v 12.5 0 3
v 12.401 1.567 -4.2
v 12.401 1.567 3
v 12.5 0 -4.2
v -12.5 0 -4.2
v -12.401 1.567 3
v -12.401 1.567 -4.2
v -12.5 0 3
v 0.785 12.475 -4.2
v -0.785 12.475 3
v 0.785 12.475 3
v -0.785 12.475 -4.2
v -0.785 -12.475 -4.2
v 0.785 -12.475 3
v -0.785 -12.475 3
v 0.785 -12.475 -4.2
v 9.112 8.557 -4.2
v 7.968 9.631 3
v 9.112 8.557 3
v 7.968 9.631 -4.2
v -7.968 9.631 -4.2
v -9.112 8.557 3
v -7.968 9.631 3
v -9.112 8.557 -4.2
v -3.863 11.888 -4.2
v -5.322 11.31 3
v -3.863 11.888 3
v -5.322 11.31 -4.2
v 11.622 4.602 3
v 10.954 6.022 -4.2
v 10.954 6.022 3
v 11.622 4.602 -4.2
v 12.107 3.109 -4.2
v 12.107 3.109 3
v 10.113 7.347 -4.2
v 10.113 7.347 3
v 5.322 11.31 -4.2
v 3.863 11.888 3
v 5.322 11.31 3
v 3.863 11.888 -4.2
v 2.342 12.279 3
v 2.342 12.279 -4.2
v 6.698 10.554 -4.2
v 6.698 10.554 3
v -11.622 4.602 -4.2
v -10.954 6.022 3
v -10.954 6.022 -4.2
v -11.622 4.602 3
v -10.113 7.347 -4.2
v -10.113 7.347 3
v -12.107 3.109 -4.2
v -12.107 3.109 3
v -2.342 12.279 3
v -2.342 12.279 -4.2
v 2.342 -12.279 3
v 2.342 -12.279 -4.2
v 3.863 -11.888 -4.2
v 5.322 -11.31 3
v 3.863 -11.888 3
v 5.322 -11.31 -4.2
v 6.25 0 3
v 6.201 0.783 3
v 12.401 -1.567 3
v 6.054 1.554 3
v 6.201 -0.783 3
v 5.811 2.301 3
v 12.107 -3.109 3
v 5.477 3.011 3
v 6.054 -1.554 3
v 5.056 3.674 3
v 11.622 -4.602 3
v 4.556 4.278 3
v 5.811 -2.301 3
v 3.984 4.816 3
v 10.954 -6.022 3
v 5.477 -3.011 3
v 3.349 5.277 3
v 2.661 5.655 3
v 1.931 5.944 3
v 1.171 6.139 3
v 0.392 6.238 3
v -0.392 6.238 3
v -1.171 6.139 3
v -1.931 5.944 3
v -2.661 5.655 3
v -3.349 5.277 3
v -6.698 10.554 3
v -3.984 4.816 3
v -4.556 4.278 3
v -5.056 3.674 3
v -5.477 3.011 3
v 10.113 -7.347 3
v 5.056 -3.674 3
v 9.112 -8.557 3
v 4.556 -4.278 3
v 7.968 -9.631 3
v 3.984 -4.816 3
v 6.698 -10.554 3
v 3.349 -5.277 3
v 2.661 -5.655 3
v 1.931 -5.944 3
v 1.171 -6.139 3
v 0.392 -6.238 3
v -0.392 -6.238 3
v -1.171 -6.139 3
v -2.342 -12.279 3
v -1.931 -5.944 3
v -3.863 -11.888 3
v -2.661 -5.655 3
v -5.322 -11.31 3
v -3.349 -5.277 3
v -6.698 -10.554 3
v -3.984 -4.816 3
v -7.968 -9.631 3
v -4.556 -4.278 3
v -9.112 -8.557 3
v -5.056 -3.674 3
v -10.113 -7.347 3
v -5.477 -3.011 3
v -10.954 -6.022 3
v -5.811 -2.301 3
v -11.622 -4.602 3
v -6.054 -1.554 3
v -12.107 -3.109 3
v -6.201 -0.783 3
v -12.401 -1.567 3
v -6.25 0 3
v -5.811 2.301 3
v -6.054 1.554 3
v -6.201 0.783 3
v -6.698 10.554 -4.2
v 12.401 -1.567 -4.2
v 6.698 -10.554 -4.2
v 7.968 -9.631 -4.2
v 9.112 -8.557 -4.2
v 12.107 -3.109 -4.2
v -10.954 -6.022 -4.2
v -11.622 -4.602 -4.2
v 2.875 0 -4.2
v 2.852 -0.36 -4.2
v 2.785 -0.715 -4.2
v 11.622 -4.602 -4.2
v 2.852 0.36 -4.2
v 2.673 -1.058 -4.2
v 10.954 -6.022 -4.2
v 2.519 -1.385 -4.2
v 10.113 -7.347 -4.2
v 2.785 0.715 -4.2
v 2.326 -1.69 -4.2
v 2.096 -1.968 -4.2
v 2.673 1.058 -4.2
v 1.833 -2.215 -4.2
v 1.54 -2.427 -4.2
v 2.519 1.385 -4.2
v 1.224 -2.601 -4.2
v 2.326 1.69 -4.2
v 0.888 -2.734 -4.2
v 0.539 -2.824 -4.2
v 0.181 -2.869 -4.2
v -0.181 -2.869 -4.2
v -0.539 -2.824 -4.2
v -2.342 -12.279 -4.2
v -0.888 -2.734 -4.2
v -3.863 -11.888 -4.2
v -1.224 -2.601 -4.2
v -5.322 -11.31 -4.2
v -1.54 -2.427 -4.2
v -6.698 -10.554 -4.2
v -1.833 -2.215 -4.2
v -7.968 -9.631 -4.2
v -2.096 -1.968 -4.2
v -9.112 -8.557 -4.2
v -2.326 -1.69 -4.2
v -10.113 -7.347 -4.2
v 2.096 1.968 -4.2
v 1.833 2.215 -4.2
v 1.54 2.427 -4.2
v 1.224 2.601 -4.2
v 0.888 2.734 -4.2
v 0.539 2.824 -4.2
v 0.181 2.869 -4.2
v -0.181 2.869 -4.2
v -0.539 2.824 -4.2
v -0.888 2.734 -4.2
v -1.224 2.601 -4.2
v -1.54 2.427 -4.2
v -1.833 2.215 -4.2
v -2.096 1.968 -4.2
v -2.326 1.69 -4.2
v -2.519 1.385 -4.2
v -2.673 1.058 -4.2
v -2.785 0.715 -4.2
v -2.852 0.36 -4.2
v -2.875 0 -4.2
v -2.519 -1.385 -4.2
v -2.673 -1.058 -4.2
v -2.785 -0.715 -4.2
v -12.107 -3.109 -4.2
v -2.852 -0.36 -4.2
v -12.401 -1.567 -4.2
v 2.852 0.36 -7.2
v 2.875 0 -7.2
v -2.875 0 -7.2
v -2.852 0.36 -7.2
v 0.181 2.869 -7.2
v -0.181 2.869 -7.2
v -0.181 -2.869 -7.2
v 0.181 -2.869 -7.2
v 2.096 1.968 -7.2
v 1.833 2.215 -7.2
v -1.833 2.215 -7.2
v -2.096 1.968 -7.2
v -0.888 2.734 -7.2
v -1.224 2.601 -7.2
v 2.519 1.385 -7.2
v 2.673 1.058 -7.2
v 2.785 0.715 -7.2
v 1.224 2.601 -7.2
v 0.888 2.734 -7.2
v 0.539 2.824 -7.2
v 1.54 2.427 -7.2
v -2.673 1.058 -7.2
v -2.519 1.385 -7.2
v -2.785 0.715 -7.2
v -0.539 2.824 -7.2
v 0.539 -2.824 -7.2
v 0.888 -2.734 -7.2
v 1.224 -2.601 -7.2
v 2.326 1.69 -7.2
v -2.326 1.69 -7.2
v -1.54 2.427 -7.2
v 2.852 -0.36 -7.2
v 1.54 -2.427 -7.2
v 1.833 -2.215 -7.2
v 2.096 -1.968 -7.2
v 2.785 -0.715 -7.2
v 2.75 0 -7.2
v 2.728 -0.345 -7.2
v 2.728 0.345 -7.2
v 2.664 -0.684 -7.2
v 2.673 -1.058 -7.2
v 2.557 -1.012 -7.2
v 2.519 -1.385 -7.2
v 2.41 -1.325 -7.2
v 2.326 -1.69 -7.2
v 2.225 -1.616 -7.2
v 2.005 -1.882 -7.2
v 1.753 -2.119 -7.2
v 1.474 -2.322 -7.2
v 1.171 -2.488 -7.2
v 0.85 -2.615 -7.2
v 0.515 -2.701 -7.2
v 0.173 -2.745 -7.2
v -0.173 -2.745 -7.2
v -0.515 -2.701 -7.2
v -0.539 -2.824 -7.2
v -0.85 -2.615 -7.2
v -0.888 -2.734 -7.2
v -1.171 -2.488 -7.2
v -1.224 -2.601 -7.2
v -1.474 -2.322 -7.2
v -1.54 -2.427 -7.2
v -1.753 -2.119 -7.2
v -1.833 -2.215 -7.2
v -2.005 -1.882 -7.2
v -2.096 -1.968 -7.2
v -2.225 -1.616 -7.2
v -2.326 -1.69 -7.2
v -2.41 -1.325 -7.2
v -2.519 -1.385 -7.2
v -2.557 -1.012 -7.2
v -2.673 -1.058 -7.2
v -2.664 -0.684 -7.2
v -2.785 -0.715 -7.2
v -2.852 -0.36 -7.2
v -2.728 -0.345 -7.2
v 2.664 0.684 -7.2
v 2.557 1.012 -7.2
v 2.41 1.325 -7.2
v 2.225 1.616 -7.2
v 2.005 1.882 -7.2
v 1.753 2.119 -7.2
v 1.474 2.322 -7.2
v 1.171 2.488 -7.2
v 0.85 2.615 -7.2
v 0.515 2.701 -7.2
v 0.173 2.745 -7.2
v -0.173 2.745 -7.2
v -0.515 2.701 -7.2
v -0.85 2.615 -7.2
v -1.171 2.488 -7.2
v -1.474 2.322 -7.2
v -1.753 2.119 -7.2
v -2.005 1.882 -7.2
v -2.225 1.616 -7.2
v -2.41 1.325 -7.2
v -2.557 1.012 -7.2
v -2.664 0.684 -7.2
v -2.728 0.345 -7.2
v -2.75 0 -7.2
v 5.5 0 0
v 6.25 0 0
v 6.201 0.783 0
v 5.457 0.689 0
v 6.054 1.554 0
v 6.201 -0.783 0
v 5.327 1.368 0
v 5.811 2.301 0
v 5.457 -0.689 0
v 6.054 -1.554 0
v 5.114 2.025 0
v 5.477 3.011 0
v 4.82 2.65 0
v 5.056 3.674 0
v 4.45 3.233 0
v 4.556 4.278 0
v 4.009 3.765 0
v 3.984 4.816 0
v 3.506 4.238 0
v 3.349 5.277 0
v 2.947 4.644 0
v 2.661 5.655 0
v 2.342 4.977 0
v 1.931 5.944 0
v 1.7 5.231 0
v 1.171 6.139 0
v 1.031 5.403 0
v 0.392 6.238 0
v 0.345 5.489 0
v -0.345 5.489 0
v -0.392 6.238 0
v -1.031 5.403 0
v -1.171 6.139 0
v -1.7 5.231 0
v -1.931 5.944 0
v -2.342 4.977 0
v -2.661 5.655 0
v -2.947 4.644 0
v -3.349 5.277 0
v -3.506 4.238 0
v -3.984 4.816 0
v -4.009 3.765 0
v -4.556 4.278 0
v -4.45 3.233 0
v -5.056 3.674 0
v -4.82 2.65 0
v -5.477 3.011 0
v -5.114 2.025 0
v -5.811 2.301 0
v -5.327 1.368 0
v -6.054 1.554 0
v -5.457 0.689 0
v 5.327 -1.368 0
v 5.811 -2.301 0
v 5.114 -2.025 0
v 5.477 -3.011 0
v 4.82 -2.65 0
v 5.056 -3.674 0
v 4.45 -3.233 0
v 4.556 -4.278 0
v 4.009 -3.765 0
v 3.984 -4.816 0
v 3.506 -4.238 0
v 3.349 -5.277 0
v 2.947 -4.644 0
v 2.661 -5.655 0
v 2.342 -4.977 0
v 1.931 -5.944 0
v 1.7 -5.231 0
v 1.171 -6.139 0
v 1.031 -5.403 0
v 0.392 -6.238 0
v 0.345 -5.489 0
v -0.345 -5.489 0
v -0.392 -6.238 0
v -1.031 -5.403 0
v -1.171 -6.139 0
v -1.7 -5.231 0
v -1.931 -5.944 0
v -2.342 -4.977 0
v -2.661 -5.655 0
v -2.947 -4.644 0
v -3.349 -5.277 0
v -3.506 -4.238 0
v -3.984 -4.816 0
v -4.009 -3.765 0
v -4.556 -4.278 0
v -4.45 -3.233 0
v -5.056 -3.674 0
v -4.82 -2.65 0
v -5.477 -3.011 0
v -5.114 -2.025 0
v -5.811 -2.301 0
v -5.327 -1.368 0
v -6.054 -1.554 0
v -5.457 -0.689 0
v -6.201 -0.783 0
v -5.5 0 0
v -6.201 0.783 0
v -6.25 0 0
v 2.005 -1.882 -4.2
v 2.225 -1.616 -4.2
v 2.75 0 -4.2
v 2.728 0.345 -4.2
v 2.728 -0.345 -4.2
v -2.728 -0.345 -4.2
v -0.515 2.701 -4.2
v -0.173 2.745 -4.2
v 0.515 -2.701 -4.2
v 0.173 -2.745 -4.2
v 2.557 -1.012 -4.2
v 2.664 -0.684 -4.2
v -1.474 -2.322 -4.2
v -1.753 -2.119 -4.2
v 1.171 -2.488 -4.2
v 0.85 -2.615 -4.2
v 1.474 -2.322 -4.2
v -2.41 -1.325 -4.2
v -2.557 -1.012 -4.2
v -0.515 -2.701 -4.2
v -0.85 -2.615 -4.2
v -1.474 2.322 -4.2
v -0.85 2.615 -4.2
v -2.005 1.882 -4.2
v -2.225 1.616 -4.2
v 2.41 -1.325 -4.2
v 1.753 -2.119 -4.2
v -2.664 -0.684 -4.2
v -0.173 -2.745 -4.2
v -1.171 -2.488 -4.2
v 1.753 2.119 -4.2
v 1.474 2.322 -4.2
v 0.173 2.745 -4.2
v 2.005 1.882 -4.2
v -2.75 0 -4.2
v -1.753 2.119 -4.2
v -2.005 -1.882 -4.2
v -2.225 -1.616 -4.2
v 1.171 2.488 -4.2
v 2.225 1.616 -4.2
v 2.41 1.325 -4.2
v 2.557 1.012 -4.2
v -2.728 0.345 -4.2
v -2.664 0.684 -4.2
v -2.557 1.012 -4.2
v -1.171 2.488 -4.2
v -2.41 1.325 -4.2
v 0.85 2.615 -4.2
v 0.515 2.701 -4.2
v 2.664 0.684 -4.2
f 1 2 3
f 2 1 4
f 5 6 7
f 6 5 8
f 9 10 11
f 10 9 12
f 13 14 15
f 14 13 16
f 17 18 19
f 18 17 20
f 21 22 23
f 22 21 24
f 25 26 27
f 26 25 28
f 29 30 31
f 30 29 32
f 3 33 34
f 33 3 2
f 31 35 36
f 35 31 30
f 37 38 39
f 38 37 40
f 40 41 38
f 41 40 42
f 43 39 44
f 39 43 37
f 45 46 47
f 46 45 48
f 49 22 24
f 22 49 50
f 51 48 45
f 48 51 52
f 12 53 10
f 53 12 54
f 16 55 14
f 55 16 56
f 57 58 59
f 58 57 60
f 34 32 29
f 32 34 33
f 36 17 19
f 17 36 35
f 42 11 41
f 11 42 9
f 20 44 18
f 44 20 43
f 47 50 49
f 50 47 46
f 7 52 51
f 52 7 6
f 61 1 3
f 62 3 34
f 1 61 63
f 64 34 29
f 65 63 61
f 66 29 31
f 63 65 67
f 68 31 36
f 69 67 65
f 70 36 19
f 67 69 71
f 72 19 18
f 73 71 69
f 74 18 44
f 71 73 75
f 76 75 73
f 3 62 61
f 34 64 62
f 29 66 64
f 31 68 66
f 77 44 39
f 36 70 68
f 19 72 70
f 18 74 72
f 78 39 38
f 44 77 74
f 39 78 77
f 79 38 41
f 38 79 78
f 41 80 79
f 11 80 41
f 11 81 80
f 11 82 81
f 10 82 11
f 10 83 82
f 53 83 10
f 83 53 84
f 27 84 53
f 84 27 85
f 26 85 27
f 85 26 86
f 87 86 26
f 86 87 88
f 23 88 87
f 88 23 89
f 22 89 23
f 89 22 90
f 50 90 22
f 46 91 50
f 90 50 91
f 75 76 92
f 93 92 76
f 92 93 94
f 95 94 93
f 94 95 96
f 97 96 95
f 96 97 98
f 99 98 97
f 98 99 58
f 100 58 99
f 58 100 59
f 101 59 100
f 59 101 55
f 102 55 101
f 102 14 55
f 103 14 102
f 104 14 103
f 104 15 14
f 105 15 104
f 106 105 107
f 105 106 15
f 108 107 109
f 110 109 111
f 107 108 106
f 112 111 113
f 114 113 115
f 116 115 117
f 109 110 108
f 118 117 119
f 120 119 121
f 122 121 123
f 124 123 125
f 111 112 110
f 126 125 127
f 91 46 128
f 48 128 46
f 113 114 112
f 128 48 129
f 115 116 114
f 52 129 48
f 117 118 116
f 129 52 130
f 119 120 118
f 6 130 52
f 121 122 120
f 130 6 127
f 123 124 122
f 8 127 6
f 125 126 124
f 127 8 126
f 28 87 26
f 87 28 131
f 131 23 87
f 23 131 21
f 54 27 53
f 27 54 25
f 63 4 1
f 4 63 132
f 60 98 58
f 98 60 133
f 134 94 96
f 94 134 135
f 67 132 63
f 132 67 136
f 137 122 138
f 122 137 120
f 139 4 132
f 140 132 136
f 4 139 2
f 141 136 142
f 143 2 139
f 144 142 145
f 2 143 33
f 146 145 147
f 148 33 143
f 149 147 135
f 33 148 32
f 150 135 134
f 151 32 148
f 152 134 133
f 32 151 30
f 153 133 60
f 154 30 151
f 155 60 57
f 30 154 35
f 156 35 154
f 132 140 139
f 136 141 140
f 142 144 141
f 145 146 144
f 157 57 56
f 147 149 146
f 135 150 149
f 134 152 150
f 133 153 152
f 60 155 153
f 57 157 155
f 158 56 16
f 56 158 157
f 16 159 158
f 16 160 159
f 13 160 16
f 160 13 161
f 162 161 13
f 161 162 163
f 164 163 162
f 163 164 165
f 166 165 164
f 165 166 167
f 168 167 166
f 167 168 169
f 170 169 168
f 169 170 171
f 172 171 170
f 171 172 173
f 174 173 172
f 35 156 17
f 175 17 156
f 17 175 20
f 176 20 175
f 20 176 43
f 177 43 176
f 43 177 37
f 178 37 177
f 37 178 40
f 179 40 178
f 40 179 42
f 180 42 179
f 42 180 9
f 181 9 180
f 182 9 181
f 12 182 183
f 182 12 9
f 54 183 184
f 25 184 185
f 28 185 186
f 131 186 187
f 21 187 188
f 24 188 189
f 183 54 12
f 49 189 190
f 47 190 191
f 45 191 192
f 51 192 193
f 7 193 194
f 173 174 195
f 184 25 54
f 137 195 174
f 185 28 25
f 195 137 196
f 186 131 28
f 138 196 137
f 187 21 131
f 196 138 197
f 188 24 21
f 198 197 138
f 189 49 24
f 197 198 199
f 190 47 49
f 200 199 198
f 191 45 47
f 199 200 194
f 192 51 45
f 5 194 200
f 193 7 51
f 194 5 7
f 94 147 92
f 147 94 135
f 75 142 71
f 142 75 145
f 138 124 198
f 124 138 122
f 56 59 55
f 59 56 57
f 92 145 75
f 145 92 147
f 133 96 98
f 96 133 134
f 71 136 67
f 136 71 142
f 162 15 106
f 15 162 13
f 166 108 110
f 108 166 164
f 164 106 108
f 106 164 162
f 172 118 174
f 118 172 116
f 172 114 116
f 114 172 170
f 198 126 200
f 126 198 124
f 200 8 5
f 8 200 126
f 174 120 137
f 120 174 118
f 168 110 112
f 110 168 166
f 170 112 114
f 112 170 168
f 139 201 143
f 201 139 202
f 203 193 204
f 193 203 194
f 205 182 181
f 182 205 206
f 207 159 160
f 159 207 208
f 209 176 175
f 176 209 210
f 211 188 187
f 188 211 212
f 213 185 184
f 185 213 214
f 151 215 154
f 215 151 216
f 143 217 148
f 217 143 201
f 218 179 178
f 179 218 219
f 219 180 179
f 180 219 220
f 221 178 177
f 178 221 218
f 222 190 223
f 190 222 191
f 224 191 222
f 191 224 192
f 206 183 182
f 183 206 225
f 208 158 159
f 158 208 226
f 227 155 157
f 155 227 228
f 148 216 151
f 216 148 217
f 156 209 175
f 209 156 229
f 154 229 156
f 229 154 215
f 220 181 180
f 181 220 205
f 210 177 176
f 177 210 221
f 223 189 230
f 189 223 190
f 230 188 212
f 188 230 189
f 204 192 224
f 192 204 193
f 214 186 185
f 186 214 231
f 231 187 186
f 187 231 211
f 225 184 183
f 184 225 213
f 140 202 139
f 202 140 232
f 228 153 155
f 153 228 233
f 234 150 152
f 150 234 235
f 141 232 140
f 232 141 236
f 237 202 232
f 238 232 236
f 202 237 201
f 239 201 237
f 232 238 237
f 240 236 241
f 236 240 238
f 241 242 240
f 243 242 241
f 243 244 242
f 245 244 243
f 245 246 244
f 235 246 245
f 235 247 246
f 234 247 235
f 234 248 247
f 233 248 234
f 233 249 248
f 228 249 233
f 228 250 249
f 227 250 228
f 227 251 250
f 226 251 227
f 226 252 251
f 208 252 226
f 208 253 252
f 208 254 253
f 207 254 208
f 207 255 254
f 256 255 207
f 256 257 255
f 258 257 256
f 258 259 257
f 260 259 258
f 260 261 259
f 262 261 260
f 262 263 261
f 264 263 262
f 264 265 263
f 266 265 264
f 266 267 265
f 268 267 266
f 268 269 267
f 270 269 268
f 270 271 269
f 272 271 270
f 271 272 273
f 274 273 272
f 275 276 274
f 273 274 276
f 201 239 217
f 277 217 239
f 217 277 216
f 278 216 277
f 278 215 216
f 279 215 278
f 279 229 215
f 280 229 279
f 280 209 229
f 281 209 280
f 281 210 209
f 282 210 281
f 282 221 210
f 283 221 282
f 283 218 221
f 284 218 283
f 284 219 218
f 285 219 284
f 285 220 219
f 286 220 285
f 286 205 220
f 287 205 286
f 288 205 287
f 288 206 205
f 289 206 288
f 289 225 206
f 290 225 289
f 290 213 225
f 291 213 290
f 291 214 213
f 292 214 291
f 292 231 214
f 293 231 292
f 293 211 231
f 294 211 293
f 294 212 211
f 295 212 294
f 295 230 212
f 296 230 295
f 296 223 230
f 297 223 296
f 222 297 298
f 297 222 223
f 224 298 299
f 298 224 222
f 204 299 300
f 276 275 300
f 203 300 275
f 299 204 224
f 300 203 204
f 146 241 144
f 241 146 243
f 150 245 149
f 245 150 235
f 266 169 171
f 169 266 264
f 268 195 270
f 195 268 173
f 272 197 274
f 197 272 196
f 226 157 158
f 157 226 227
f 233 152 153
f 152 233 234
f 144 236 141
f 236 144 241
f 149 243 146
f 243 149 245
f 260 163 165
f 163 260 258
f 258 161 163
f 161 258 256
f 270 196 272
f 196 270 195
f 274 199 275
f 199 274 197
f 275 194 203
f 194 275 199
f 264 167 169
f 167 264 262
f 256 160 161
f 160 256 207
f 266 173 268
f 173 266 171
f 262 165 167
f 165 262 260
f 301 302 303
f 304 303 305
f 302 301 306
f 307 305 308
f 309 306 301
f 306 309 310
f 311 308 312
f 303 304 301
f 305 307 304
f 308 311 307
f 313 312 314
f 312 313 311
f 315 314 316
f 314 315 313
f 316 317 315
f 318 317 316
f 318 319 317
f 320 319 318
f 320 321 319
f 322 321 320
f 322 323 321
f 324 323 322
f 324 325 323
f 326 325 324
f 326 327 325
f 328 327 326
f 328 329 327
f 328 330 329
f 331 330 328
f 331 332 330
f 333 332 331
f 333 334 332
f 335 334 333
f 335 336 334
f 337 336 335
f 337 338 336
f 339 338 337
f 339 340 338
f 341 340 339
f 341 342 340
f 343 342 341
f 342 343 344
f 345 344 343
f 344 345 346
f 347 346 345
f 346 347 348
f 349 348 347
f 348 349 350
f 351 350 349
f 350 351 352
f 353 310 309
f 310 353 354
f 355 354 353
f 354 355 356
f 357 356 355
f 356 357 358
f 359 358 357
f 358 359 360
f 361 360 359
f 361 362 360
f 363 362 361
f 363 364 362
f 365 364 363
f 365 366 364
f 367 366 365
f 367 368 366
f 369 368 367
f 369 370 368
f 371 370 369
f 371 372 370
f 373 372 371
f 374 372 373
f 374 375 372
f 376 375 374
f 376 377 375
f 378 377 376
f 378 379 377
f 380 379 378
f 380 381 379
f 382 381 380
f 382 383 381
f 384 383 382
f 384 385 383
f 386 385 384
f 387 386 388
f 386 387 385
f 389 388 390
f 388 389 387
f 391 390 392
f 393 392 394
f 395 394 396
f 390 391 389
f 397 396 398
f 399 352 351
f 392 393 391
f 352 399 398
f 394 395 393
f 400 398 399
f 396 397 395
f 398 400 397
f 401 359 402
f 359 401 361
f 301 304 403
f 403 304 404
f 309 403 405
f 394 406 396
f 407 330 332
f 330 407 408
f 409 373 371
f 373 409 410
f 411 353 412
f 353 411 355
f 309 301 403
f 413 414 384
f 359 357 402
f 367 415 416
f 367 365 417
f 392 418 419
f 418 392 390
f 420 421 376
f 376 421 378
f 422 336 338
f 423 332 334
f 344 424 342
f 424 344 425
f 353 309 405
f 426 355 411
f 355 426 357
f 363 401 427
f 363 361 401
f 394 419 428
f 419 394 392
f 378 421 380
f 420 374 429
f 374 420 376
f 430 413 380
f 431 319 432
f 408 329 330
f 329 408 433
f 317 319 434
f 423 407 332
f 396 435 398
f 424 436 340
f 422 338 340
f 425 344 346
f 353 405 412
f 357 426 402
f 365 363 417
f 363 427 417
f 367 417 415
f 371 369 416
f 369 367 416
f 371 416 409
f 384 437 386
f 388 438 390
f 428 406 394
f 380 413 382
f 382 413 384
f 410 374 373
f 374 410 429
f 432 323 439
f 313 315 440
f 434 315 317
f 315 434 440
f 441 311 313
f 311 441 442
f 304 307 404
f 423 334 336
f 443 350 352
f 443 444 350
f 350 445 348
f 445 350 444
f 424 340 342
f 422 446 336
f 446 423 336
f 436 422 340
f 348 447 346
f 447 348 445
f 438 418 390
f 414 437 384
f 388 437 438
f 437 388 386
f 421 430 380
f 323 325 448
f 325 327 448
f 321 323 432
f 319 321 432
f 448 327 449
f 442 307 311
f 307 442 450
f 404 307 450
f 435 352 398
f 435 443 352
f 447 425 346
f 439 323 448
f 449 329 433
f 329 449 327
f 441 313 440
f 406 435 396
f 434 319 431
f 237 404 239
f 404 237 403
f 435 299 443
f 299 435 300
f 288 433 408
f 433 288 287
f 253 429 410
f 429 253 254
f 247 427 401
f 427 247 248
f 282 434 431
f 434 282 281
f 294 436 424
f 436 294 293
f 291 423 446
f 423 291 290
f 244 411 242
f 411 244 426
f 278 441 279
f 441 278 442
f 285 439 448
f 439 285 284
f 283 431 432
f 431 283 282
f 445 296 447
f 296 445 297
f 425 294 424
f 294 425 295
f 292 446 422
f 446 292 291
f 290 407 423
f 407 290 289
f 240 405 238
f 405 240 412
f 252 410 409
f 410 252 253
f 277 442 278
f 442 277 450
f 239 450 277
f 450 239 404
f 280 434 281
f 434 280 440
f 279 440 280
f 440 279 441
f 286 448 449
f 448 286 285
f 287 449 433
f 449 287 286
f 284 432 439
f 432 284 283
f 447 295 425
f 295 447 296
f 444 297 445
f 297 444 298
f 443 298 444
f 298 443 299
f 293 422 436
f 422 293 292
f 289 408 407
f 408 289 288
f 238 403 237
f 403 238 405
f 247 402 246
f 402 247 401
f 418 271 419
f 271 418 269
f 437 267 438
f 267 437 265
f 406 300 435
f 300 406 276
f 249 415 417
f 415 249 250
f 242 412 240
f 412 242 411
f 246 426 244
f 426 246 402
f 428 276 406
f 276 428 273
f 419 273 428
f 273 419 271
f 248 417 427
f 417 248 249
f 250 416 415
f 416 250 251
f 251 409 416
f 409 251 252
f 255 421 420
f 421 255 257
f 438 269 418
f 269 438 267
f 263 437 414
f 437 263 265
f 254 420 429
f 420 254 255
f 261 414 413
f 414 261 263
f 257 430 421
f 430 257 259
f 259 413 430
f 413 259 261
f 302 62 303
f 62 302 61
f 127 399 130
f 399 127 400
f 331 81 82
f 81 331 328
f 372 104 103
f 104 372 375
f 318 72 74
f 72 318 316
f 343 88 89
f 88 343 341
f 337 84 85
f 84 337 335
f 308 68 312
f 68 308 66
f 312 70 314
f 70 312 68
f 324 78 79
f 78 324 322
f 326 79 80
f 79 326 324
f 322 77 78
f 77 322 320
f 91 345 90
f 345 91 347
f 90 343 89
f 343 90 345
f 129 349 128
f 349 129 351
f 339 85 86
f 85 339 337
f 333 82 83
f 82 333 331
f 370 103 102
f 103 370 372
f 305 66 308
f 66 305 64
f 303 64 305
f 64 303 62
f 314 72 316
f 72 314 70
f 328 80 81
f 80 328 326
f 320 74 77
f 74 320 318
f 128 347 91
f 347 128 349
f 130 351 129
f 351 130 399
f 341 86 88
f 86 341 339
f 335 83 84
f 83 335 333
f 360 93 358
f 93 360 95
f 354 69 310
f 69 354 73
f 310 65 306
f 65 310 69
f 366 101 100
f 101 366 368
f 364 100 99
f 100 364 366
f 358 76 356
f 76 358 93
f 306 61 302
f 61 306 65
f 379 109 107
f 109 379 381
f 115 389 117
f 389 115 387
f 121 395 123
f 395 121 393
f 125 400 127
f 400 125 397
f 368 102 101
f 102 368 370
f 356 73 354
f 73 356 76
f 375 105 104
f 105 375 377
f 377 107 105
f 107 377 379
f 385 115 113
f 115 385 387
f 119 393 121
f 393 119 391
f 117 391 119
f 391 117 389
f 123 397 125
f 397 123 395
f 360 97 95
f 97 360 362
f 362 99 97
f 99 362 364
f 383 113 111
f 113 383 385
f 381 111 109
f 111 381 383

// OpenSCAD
$fn = 50;

difference() {
	union() {
		translate(v = [0, 0, -4.2]) {
			cylinder(h = 7.2, r = 12.5);
		}
		#translate(v = [0, 0, -7.2]) {
			cylinder(h = 7.2, r = 2.875);
		}
	}
	union() {
		translate(v = [0, 0, 0]) {
			rotate(a = [0, 0, 0]) {
				difference() {
					union() {
						translate(v = [0, 0, -7.2]) {
							cylinder(h = 7.2, r = 2.25);
						}
						translate(v = [0, 0, -4.2]) {
							cylinder(h = 4.2, r1 = 2.75, r2 = 5.5);
						}
						translate(v = [0, 0, -7.2]) {
							cylinder(h = 7.2, r = 2.75);
						}
						translate(v = [0, 0, -7.2]) {
							cylinder(h = 7.2, r = 2.25);
						}
					}
					union();
				}
			}
		}
		#cylinder(h = 3, r = 6.25);
	}
}
